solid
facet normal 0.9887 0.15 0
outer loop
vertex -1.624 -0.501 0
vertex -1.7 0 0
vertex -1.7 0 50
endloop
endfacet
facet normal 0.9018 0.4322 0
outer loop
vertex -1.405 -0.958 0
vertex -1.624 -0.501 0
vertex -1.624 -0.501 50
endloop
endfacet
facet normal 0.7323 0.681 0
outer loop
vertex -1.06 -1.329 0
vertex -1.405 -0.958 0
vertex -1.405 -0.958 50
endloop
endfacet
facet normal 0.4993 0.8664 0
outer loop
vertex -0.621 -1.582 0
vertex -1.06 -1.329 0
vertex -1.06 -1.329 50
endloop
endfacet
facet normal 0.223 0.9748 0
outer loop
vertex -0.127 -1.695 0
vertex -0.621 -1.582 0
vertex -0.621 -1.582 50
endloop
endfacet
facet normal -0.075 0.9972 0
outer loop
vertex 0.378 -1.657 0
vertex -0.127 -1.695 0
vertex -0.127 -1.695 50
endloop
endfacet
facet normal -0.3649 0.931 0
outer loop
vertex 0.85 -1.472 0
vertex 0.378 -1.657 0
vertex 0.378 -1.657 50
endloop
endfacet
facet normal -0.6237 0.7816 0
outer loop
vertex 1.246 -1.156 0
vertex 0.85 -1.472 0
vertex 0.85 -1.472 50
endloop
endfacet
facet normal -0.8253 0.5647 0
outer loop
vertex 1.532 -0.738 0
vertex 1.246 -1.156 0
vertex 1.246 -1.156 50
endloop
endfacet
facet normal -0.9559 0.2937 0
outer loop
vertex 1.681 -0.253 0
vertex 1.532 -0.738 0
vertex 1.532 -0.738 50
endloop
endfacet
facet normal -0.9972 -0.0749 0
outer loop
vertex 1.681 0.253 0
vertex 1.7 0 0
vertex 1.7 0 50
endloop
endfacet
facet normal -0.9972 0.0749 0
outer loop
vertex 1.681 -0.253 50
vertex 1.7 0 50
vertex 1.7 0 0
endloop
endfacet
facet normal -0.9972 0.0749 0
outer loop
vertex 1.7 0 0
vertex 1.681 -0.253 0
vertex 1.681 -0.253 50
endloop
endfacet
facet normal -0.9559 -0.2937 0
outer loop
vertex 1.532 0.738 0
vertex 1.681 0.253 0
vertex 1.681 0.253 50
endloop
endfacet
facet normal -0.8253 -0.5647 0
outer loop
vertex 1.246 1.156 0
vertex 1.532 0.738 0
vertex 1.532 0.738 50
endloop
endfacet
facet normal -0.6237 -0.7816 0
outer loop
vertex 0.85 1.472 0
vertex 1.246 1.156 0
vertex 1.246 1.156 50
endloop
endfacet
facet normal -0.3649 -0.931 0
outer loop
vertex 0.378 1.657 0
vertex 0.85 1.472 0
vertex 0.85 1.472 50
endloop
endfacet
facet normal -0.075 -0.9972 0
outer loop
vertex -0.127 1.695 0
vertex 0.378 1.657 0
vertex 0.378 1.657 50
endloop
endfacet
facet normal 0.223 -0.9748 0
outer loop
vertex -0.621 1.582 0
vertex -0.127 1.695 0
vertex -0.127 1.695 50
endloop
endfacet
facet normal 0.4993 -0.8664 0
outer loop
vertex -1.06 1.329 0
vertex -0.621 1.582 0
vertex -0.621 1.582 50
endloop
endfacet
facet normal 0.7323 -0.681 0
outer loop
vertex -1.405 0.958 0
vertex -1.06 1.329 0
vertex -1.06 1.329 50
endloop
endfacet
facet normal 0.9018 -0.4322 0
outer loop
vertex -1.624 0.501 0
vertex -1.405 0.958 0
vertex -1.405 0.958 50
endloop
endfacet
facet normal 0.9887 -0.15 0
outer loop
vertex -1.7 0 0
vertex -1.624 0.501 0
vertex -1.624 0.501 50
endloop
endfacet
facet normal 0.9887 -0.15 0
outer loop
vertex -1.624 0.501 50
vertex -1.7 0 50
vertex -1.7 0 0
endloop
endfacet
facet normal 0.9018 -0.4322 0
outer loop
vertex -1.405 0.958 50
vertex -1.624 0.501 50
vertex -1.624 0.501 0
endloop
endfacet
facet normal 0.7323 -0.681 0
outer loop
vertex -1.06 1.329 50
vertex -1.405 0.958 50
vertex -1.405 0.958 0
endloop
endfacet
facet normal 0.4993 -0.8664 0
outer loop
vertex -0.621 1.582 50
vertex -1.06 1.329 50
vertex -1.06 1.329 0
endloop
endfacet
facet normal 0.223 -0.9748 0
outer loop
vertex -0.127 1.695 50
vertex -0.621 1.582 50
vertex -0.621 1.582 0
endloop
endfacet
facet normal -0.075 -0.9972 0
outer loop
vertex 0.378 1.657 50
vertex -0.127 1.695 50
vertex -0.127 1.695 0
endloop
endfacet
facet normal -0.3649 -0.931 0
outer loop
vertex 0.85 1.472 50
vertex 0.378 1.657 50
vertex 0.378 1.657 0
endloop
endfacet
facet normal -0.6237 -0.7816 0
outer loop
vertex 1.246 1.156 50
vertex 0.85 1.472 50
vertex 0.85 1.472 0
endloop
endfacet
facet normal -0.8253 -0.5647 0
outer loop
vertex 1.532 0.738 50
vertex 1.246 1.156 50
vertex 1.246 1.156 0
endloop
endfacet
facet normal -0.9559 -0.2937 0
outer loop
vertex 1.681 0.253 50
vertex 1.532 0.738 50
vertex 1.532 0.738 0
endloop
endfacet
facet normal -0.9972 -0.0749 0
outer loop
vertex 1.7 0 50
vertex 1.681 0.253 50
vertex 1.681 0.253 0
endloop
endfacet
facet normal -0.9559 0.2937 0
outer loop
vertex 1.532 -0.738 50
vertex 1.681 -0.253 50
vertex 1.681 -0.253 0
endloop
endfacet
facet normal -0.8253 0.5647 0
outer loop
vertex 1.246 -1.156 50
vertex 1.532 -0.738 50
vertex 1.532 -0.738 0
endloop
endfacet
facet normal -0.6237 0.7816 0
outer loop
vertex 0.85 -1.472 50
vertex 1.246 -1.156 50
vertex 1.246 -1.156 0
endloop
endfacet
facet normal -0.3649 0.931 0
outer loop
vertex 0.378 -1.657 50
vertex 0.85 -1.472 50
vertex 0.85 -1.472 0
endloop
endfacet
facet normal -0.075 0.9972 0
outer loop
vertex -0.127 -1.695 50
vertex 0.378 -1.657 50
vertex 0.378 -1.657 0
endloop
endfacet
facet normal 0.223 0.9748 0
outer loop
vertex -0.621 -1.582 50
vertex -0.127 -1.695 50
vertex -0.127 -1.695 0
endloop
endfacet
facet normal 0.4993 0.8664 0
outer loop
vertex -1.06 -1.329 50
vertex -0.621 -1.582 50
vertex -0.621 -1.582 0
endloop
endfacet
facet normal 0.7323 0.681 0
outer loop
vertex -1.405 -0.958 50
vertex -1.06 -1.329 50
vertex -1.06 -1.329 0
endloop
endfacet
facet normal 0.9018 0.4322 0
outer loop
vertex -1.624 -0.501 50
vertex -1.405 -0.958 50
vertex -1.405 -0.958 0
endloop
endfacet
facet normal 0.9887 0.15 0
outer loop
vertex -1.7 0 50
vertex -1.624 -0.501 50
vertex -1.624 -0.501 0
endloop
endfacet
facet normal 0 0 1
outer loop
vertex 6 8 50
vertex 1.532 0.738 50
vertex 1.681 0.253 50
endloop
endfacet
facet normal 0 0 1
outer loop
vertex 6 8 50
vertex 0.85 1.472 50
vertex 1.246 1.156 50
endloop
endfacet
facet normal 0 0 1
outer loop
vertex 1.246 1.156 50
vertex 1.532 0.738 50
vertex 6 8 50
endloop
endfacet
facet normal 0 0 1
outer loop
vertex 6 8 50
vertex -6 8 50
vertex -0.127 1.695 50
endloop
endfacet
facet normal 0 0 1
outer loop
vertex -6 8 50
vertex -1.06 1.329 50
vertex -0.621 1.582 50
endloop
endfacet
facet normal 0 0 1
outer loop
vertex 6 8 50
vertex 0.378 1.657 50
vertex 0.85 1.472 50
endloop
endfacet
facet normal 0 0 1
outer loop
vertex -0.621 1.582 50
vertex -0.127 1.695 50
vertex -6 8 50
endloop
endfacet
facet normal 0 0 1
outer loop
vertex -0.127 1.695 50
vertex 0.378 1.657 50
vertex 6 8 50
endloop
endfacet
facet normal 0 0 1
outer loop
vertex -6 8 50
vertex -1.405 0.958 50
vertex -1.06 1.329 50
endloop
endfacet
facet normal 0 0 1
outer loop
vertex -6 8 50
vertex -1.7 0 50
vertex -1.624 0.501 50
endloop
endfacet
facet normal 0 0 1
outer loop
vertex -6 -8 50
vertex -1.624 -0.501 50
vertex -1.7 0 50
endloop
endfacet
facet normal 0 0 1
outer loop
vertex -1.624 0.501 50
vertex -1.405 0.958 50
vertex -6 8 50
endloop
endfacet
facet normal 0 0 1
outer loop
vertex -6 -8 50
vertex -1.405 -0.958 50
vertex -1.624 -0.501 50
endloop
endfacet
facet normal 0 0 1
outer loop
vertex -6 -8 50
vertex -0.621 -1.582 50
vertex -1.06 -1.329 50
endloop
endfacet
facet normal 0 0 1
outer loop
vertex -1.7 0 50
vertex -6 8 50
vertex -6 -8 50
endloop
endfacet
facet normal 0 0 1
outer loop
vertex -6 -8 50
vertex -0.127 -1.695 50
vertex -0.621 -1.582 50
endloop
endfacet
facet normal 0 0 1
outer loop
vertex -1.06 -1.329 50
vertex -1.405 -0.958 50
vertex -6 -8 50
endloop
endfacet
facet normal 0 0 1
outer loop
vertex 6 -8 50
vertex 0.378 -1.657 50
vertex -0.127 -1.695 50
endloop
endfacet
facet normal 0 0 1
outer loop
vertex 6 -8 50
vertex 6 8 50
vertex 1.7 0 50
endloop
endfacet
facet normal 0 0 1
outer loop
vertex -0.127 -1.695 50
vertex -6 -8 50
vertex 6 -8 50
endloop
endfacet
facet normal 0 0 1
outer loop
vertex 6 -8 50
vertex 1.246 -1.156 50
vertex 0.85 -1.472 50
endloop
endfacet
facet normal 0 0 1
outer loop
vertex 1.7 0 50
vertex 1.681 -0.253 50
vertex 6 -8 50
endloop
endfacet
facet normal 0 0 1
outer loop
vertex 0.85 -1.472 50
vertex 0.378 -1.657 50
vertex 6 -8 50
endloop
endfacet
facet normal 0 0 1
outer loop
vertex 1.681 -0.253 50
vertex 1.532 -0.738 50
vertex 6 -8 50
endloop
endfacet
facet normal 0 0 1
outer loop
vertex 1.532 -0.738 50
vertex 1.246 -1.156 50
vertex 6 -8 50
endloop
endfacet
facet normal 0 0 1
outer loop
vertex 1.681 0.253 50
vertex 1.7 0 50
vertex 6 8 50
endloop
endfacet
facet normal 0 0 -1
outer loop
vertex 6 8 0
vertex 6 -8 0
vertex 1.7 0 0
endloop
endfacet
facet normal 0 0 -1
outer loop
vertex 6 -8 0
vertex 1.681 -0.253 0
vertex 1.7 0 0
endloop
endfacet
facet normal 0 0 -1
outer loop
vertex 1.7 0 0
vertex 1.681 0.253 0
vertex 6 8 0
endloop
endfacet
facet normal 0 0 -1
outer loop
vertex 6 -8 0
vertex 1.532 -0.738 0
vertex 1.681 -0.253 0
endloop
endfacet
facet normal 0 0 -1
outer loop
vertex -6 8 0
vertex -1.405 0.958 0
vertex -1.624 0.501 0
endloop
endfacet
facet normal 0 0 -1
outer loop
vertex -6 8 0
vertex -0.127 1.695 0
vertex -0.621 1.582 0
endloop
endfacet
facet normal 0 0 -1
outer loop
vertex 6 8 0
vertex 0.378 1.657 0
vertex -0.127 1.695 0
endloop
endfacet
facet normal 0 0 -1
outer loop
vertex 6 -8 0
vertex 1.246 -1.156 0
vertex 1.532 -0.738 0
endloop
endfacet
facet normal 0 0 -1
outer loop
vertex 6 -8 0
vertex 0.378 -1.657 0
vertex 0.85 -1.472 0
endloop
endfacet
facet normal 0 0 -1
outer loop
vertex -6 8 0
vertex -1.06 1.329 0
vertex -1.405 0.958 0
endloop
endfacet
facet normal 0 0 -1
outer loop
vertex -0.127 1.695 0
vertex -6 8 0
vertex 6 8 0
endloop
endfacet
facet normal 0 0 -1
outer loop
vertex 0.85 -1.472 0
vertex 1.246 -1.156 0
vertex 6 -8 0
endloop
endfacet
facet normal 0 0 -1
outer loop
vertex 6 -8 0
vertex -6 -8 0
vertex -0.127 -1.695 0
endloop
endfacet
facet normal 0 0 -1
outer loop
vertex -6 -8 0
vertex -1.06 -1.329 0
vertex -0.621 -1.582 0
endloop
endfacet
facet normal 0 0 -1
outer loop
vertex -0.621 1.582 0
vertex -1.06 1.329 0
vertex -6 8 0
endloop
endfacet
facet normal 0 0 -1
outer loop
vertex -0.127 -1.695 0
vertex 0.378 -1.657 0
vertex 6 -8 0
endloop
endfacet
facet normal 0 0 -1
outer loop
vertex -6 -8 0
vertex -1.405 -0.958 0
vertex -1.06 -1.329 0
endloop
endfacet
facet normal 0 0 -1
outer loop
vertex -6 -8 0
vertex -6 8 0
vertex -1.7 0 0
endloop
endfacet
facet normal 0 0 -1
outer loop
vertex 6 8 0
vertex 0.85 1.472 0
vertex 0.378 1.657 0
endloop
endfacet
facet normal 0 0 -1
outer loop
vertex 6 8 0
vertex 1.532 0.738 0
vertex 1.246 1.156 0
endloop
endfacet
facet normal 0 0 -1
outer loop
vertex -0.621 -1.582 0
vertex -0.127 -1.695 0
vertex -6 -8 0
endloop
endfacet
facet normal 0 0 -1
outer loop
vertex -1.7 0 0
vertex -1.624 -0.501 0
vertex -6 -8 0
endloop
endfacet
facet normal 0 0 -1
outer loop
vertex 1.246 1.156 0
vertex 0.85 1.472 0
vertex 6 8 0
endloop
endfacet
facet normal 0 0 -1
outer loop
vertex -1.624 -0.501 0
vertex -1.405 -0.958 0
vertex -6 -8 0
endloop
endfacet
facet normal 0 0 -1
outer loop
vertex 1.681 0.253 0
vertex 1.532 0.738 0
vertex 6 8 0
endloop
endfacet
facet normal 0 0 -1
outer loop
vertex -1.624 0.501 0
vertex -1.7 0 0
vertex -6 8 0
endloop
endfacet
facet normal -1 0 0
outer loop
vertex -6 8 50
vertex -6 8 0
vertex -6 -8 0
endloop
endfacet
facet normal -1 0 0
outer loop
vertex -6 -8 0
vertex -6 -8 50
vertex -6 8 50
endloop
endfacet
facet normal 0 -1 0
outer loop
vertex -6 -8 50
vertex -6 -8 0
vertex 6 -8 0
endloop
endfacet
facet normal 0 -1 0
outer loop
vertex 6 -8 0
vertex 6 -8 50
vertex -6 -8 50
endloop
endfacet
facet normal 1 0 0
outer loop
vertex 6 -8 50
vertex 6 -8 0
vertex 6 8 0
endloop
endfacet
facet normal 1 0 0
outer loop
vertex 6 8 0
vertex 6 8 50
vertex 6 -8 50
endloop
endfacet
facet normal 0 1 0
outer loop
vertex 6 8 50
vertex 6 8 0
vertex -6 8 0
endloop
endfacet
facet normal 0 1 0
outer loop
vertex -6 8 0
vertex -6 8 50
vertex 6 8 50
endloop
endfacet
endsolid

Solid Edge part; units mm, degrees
sketch "Sketch1" plane through (0, 0, 0) normal (0, 0, 1) x (1, 0, 0)
  line L0 (-6, -8) -> (6, -8)
  line L1 (6, -8) -> (6, 8)
  line L2 (6, 8) -> (-6, 8)
  line L3 (-6, 8) -> (-6, -8)
  circle A0 centre (0, 0) radius 1.7
extrude "Protrusion1" add sketch "Sketch1" along normal blind 50
